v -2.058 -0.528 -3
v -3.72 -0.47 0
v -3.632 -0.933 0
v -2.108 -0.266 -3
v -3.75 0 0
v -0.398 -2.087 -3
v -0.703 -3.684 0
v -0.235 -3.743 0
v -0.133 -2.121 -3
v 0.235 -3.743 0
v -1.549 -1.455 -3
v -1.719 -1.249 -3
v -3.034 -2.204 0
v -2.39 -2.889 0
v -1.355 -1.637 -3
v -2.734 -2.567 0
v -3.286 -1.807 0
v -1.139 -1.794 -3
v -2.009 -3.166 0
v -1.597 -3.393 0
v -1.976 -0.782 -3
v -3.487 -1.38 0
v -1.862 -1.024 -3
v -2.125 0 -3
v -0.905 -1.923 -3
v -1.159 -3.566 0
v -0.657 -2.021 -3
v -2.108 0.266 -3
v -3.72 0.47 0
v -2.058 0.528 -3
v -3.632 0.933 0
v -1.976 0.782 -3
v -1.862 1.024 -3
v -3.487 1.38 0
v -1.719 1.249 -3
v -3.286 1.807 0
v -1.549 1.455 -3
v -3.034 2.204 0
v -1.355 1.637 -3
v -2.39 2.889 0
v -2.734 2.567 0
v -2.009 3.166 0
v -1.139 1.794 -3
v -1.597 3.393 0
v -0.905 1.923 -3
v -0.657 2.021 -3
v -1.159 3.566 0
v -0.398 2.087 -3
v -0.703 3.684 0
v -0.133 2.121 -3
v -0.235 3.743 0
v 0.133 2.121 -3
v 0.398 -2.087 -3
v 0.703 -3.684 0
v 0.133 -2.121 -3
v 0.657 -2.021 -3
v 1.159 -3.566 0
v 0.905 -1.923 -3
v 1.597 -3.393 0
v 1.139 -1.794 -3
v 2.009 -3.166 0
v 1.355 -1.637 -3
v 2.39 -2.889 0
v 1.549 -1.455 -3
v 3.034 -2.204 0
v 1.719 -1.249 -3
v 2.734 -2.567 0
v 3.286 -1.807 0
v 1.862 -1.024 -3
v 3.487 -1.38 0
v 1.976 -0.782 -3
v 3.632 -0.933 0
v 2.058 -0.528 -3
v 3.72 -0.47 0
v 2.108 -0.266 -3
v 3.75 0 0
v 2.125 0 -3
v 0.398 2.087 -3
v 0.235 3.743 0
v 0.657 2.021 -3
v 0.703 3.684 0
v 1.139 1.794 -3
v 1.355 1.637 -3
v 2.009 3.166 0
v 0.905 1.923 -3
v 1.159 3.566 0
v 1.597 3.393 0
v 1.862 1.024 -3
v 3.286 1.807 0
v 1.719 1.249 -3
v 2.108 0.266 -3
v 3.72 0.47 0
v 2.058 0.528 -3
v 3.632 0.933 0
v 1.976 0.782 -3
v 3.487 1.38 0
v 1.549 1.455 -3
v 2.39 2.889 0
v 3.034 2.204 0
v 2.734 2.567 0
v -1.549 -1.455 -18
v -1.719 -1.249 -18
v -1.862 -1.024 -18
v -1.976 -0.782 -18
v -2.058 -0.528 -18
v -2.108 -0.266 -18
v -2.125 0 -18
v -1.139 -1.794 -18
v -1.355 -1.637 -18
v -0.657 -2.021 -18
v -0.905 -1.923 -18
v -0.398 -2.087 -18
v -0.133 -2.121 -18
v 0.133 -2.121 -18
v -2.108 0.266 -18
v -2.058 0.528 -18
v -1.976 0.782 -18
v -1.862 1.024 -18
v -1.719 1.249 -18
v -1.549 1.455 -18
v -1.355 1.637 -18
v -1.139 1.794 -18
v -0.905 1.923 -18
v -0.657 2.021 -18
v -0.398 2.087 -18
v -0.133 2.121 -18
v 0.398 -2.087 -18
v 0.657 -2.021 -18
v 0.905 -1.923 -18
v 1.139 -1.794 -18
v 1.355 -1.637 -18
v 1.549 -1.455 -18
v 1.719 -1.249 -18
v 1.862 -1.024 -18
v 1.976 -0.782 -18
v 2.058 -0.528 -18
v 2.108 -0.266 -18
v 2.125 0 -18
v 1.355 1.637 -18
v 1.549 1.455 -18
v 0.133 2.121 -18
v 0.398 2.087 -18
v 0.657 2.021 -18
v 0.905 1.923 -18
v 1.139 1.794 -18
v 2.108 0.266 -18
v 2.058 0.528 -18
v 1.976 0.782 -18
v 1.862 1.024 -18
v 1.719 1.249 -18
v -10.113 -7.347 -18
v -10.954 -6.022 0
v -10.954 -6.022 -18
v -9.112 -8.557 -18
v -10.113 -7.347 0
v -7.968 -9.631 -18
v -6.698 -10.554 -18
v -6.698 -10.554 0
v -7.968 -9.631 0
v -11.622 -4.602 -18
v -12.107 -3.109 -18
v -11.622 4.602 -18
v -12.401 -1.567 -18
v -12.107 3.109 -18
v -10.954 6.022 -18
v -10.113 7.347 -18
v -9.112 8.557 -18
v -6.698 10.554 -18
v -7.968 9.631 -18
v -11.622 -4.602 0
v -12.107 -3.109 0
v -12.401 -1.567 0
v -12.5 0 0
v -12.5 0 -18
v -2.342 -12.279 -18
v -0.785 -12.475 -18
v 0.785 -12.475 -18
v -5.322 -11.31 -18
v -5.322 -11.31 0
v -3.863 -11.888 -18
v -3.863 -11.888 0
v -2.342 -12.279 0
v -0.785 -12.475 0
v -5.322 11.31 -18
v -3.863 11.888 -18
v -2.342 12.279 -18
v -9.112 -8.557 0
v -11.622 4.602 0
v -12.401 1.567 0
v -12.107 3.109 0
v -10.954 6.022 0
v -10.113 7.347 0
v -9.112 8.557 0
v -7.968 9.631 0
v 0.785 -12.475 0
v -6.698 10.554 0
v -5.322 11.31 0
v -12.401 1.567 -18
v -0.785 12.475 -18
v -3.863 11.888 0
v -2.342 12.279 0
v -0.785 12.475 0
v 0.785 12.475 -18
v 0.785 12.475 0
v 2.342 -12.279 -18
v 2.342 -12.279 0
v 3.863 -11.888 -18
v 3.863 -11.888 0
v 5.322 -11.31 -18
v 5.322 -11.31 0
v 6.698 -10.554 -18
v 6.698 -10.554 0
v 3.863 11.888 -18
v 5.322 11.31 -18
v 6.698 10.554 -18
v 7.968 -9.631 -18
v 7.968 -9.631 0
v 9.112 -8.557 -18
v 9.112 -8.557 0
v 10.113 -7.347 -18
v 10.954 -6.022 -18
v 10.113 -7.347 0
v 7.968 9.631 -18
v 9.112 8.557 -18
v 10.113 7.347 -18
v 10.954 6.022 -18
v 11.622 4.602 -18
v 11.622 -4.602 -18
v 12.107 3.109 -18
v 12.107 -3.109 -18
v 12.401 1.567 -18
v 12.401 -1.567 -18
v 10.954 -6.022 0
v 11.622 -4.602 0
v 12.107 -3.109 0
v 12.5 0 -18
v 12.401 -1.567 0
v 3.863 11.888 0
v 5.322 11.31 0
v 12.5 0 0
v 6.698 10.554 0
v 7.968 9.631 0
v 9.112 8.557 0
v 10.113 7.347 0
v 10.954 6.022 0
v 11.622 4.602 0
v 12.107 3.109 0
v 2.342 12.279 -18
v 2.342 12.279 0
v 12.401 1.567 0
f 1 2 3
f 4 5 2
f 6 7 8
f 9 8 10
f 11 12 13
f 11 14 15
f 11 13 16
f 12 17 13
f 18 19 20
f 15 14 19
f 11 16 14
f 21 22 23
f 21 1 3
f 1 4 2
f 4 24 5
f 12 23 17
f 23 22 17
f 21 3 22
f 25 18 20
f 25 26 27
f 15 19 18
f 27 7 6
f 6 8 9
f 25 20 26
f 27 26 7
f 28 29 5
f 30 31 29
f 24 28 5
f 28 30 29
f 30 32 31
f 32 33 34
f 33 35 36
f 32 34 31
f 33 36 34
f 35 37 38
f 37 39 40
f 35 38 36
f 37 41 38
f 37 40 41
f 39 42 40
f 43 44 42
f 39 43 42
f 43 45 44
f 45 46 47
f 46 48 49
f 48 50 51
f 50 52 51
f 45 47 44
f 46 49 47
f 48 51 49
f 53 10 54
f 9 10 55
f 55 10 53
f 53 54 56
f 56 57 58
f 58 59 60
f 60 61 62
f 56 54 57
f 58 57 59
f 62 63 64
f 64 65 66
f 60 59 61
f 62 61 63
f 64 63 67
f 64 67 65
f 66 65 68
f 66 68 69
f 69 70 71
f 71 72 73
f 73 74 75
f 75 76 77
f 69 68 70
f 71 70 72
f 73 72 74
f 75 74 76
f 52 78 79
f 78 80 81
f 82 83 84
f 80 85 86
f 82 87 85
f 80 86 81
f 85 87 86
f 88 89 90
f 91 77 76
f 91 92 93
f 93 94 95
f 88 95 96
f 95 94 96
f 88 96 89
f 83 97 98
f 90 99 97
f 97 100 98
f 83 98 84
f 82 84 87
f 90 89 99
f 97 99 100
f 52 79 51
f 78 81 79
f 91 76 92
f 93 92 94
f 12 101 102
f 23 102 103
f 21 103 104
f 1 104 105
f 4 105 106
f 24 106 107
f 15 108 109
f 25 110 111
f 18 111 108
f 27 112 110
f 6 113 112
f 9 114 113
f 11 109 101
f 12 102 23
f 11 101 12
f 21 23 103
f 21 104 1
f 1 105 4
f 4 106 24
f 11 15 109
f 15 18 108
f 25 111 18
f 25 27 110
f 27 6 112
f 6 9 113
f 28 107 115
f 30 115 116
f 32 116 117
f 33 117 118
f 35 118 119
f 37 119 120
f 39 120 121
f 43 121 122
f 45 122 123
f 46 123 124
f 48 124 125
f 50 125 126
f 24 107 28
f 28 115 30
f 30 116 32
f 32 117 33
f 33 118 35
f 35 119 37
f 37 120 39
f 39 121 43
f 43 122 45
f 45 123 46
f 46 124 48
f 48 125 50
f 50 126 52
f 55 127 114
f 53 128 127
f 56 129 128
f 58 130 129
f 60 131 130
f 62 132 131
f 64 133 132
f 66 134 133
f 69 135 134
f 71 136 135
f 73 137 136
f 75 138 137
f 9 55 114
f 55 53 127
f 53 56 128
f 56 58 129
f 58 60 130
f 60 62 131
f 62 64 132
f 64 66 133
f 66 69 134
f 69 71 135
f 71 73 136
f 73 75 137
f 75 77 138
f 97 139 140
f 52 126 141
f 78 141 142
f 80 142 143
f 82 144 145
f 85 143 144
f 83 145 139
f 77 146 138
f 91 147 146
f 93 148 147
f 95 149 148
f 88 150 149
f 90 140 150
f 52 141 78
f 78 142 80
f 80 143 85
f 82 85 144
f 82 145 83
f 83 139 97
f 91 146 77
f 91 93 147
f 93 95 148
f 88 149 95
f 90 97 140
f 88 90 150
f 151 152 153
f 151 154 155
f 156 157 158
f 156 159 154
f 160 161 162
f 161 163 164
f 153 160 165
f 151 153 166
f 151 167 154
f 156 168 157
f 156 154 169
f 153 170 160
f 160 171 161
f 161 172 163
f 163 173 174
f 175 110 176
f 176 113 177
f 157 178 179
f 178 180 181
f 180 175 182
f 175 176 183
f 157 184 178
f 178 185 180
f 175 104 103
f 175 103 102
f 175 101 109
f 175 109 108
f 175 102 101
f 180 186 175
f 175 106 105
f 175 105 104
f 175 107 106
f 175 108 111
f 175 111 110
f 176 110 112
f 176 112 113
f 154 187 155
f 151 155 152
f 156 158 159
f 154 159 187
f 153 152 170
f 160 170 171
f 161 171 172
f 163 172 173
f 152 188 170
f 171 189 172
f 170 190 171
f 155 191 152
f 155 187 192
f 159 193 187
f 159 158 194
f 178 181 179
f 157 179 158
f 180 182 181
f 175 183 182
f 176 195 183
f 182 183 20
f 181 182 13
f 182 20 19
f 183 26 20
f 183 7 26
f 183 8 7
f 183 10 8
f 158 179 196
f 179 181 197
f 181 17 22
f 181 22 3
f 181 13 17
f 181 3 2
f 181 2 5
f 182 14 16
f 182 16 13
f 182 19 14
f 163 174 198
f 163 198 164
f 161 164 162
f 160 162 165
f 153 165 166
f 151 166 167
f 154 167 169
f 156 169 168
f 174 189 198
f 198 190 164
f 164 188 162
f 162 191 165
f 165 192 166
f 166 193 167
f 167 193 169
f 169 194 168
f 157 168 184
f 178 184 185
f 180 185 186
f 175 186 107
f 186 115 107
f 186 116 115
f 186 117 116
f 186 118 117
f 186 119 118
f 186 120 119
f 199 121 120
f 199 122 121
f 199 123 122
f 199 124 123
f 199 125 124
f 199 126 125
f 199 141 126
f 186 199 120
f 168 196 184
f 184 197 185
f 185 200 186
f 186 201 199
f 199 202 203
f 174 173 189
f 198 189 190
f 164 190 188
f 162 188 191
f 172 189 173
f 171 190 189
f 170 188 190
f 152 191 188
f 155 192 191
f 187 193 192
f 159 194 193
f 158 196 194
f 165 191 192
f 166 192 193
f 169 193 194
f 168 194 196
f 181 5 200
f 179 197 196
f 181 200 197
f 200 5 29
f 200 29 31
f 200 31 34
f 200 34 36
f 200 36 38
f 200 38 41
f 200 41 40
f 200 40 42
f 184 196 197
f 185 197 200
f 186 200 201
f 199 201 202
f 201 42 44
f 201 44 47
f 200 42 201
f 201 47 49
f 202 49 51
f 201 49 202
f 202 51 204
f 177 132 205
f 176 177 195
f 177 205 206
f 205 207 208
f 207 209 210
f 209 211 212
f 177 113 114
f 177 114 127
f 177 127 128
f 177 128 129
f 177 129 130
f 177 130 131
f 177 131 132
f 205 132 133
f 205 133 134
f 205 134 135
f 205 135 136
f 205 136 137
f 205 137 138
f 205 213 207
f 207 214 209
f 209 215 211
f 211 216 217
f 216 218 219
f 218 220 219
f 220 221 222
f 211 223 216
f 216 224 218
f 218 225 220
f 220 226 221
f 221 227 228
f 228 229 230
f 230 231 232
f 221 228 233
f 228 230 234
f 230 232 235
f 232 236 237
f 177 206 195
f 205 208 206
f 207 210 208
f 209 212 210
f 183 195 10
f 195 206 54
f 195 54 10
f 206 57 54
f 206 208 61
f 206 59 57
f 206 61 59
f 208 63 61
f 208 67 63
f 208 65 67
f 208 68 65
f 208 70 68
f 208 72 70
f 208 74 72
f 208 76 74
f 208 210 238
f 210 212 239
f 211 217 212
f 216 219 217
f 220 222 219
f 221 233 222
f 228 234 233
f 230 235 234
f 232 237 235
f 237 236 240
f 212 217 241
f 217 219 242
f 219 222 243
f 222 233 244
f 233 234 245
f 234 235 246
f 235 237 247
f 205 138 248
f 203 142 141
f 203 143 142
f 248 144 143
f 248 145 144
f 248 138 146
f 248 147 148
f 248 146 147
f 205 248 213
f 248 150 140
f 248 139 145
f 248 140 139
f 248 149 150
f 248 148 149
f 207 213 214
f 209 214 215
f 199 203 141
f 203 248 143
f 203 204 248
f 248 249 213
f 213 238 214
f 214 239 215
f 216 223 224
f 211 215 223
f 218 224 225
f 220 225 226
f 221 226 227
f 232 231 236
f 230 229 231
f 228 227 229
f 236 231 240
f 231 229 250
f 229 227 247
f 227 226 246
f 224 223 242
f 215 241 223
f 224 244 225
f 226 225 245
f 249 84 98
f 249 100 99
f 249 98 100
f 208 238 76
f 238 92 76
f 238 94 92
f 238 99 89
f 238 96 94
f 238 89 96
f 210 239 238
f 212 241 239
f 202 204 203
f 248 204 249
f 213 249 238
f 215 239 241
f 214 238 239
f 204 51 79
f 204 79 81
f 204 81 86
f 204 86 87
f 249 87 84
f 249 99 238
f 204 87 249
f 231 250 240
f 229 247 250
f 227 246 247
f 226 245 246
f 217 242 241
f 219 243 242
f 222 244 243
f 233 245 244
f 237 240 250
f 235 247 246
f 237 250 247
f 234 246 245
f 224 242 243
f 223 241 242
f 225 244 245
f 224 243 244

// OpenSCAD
$fn = 50;


difference() {
	union() {
		translate(v = [0, 0, -18.0000000000]) {
			cylinder(h = 18, r = 12.5000000000);
		}
	}
	union() {
		translate(v = [0, 0, 0]) {
			rotate(a = [0, 0, 0]) {
				difference() {
					union() {
						translate(v = [0, 0, -21.0000000000]) {
							cylinder(h = 21, r = 2.0000000000);
						}
						translate(v = [0, 0, -3]) {
							cylinder(h = 3, r1 = 2.1250000000, r2 = 3.7500000000);
						}
						translate(v = [0, 0, -21.0000000000]) {
							cylinder(h = 21, r = 2.1250000000);
						}
						translate(v = [0, 0, -21.0000000000]) {
							cylinder(h = 21, r = 2.0000000000);
						}
					}
					union();
				}
			}
		}
	}
}
